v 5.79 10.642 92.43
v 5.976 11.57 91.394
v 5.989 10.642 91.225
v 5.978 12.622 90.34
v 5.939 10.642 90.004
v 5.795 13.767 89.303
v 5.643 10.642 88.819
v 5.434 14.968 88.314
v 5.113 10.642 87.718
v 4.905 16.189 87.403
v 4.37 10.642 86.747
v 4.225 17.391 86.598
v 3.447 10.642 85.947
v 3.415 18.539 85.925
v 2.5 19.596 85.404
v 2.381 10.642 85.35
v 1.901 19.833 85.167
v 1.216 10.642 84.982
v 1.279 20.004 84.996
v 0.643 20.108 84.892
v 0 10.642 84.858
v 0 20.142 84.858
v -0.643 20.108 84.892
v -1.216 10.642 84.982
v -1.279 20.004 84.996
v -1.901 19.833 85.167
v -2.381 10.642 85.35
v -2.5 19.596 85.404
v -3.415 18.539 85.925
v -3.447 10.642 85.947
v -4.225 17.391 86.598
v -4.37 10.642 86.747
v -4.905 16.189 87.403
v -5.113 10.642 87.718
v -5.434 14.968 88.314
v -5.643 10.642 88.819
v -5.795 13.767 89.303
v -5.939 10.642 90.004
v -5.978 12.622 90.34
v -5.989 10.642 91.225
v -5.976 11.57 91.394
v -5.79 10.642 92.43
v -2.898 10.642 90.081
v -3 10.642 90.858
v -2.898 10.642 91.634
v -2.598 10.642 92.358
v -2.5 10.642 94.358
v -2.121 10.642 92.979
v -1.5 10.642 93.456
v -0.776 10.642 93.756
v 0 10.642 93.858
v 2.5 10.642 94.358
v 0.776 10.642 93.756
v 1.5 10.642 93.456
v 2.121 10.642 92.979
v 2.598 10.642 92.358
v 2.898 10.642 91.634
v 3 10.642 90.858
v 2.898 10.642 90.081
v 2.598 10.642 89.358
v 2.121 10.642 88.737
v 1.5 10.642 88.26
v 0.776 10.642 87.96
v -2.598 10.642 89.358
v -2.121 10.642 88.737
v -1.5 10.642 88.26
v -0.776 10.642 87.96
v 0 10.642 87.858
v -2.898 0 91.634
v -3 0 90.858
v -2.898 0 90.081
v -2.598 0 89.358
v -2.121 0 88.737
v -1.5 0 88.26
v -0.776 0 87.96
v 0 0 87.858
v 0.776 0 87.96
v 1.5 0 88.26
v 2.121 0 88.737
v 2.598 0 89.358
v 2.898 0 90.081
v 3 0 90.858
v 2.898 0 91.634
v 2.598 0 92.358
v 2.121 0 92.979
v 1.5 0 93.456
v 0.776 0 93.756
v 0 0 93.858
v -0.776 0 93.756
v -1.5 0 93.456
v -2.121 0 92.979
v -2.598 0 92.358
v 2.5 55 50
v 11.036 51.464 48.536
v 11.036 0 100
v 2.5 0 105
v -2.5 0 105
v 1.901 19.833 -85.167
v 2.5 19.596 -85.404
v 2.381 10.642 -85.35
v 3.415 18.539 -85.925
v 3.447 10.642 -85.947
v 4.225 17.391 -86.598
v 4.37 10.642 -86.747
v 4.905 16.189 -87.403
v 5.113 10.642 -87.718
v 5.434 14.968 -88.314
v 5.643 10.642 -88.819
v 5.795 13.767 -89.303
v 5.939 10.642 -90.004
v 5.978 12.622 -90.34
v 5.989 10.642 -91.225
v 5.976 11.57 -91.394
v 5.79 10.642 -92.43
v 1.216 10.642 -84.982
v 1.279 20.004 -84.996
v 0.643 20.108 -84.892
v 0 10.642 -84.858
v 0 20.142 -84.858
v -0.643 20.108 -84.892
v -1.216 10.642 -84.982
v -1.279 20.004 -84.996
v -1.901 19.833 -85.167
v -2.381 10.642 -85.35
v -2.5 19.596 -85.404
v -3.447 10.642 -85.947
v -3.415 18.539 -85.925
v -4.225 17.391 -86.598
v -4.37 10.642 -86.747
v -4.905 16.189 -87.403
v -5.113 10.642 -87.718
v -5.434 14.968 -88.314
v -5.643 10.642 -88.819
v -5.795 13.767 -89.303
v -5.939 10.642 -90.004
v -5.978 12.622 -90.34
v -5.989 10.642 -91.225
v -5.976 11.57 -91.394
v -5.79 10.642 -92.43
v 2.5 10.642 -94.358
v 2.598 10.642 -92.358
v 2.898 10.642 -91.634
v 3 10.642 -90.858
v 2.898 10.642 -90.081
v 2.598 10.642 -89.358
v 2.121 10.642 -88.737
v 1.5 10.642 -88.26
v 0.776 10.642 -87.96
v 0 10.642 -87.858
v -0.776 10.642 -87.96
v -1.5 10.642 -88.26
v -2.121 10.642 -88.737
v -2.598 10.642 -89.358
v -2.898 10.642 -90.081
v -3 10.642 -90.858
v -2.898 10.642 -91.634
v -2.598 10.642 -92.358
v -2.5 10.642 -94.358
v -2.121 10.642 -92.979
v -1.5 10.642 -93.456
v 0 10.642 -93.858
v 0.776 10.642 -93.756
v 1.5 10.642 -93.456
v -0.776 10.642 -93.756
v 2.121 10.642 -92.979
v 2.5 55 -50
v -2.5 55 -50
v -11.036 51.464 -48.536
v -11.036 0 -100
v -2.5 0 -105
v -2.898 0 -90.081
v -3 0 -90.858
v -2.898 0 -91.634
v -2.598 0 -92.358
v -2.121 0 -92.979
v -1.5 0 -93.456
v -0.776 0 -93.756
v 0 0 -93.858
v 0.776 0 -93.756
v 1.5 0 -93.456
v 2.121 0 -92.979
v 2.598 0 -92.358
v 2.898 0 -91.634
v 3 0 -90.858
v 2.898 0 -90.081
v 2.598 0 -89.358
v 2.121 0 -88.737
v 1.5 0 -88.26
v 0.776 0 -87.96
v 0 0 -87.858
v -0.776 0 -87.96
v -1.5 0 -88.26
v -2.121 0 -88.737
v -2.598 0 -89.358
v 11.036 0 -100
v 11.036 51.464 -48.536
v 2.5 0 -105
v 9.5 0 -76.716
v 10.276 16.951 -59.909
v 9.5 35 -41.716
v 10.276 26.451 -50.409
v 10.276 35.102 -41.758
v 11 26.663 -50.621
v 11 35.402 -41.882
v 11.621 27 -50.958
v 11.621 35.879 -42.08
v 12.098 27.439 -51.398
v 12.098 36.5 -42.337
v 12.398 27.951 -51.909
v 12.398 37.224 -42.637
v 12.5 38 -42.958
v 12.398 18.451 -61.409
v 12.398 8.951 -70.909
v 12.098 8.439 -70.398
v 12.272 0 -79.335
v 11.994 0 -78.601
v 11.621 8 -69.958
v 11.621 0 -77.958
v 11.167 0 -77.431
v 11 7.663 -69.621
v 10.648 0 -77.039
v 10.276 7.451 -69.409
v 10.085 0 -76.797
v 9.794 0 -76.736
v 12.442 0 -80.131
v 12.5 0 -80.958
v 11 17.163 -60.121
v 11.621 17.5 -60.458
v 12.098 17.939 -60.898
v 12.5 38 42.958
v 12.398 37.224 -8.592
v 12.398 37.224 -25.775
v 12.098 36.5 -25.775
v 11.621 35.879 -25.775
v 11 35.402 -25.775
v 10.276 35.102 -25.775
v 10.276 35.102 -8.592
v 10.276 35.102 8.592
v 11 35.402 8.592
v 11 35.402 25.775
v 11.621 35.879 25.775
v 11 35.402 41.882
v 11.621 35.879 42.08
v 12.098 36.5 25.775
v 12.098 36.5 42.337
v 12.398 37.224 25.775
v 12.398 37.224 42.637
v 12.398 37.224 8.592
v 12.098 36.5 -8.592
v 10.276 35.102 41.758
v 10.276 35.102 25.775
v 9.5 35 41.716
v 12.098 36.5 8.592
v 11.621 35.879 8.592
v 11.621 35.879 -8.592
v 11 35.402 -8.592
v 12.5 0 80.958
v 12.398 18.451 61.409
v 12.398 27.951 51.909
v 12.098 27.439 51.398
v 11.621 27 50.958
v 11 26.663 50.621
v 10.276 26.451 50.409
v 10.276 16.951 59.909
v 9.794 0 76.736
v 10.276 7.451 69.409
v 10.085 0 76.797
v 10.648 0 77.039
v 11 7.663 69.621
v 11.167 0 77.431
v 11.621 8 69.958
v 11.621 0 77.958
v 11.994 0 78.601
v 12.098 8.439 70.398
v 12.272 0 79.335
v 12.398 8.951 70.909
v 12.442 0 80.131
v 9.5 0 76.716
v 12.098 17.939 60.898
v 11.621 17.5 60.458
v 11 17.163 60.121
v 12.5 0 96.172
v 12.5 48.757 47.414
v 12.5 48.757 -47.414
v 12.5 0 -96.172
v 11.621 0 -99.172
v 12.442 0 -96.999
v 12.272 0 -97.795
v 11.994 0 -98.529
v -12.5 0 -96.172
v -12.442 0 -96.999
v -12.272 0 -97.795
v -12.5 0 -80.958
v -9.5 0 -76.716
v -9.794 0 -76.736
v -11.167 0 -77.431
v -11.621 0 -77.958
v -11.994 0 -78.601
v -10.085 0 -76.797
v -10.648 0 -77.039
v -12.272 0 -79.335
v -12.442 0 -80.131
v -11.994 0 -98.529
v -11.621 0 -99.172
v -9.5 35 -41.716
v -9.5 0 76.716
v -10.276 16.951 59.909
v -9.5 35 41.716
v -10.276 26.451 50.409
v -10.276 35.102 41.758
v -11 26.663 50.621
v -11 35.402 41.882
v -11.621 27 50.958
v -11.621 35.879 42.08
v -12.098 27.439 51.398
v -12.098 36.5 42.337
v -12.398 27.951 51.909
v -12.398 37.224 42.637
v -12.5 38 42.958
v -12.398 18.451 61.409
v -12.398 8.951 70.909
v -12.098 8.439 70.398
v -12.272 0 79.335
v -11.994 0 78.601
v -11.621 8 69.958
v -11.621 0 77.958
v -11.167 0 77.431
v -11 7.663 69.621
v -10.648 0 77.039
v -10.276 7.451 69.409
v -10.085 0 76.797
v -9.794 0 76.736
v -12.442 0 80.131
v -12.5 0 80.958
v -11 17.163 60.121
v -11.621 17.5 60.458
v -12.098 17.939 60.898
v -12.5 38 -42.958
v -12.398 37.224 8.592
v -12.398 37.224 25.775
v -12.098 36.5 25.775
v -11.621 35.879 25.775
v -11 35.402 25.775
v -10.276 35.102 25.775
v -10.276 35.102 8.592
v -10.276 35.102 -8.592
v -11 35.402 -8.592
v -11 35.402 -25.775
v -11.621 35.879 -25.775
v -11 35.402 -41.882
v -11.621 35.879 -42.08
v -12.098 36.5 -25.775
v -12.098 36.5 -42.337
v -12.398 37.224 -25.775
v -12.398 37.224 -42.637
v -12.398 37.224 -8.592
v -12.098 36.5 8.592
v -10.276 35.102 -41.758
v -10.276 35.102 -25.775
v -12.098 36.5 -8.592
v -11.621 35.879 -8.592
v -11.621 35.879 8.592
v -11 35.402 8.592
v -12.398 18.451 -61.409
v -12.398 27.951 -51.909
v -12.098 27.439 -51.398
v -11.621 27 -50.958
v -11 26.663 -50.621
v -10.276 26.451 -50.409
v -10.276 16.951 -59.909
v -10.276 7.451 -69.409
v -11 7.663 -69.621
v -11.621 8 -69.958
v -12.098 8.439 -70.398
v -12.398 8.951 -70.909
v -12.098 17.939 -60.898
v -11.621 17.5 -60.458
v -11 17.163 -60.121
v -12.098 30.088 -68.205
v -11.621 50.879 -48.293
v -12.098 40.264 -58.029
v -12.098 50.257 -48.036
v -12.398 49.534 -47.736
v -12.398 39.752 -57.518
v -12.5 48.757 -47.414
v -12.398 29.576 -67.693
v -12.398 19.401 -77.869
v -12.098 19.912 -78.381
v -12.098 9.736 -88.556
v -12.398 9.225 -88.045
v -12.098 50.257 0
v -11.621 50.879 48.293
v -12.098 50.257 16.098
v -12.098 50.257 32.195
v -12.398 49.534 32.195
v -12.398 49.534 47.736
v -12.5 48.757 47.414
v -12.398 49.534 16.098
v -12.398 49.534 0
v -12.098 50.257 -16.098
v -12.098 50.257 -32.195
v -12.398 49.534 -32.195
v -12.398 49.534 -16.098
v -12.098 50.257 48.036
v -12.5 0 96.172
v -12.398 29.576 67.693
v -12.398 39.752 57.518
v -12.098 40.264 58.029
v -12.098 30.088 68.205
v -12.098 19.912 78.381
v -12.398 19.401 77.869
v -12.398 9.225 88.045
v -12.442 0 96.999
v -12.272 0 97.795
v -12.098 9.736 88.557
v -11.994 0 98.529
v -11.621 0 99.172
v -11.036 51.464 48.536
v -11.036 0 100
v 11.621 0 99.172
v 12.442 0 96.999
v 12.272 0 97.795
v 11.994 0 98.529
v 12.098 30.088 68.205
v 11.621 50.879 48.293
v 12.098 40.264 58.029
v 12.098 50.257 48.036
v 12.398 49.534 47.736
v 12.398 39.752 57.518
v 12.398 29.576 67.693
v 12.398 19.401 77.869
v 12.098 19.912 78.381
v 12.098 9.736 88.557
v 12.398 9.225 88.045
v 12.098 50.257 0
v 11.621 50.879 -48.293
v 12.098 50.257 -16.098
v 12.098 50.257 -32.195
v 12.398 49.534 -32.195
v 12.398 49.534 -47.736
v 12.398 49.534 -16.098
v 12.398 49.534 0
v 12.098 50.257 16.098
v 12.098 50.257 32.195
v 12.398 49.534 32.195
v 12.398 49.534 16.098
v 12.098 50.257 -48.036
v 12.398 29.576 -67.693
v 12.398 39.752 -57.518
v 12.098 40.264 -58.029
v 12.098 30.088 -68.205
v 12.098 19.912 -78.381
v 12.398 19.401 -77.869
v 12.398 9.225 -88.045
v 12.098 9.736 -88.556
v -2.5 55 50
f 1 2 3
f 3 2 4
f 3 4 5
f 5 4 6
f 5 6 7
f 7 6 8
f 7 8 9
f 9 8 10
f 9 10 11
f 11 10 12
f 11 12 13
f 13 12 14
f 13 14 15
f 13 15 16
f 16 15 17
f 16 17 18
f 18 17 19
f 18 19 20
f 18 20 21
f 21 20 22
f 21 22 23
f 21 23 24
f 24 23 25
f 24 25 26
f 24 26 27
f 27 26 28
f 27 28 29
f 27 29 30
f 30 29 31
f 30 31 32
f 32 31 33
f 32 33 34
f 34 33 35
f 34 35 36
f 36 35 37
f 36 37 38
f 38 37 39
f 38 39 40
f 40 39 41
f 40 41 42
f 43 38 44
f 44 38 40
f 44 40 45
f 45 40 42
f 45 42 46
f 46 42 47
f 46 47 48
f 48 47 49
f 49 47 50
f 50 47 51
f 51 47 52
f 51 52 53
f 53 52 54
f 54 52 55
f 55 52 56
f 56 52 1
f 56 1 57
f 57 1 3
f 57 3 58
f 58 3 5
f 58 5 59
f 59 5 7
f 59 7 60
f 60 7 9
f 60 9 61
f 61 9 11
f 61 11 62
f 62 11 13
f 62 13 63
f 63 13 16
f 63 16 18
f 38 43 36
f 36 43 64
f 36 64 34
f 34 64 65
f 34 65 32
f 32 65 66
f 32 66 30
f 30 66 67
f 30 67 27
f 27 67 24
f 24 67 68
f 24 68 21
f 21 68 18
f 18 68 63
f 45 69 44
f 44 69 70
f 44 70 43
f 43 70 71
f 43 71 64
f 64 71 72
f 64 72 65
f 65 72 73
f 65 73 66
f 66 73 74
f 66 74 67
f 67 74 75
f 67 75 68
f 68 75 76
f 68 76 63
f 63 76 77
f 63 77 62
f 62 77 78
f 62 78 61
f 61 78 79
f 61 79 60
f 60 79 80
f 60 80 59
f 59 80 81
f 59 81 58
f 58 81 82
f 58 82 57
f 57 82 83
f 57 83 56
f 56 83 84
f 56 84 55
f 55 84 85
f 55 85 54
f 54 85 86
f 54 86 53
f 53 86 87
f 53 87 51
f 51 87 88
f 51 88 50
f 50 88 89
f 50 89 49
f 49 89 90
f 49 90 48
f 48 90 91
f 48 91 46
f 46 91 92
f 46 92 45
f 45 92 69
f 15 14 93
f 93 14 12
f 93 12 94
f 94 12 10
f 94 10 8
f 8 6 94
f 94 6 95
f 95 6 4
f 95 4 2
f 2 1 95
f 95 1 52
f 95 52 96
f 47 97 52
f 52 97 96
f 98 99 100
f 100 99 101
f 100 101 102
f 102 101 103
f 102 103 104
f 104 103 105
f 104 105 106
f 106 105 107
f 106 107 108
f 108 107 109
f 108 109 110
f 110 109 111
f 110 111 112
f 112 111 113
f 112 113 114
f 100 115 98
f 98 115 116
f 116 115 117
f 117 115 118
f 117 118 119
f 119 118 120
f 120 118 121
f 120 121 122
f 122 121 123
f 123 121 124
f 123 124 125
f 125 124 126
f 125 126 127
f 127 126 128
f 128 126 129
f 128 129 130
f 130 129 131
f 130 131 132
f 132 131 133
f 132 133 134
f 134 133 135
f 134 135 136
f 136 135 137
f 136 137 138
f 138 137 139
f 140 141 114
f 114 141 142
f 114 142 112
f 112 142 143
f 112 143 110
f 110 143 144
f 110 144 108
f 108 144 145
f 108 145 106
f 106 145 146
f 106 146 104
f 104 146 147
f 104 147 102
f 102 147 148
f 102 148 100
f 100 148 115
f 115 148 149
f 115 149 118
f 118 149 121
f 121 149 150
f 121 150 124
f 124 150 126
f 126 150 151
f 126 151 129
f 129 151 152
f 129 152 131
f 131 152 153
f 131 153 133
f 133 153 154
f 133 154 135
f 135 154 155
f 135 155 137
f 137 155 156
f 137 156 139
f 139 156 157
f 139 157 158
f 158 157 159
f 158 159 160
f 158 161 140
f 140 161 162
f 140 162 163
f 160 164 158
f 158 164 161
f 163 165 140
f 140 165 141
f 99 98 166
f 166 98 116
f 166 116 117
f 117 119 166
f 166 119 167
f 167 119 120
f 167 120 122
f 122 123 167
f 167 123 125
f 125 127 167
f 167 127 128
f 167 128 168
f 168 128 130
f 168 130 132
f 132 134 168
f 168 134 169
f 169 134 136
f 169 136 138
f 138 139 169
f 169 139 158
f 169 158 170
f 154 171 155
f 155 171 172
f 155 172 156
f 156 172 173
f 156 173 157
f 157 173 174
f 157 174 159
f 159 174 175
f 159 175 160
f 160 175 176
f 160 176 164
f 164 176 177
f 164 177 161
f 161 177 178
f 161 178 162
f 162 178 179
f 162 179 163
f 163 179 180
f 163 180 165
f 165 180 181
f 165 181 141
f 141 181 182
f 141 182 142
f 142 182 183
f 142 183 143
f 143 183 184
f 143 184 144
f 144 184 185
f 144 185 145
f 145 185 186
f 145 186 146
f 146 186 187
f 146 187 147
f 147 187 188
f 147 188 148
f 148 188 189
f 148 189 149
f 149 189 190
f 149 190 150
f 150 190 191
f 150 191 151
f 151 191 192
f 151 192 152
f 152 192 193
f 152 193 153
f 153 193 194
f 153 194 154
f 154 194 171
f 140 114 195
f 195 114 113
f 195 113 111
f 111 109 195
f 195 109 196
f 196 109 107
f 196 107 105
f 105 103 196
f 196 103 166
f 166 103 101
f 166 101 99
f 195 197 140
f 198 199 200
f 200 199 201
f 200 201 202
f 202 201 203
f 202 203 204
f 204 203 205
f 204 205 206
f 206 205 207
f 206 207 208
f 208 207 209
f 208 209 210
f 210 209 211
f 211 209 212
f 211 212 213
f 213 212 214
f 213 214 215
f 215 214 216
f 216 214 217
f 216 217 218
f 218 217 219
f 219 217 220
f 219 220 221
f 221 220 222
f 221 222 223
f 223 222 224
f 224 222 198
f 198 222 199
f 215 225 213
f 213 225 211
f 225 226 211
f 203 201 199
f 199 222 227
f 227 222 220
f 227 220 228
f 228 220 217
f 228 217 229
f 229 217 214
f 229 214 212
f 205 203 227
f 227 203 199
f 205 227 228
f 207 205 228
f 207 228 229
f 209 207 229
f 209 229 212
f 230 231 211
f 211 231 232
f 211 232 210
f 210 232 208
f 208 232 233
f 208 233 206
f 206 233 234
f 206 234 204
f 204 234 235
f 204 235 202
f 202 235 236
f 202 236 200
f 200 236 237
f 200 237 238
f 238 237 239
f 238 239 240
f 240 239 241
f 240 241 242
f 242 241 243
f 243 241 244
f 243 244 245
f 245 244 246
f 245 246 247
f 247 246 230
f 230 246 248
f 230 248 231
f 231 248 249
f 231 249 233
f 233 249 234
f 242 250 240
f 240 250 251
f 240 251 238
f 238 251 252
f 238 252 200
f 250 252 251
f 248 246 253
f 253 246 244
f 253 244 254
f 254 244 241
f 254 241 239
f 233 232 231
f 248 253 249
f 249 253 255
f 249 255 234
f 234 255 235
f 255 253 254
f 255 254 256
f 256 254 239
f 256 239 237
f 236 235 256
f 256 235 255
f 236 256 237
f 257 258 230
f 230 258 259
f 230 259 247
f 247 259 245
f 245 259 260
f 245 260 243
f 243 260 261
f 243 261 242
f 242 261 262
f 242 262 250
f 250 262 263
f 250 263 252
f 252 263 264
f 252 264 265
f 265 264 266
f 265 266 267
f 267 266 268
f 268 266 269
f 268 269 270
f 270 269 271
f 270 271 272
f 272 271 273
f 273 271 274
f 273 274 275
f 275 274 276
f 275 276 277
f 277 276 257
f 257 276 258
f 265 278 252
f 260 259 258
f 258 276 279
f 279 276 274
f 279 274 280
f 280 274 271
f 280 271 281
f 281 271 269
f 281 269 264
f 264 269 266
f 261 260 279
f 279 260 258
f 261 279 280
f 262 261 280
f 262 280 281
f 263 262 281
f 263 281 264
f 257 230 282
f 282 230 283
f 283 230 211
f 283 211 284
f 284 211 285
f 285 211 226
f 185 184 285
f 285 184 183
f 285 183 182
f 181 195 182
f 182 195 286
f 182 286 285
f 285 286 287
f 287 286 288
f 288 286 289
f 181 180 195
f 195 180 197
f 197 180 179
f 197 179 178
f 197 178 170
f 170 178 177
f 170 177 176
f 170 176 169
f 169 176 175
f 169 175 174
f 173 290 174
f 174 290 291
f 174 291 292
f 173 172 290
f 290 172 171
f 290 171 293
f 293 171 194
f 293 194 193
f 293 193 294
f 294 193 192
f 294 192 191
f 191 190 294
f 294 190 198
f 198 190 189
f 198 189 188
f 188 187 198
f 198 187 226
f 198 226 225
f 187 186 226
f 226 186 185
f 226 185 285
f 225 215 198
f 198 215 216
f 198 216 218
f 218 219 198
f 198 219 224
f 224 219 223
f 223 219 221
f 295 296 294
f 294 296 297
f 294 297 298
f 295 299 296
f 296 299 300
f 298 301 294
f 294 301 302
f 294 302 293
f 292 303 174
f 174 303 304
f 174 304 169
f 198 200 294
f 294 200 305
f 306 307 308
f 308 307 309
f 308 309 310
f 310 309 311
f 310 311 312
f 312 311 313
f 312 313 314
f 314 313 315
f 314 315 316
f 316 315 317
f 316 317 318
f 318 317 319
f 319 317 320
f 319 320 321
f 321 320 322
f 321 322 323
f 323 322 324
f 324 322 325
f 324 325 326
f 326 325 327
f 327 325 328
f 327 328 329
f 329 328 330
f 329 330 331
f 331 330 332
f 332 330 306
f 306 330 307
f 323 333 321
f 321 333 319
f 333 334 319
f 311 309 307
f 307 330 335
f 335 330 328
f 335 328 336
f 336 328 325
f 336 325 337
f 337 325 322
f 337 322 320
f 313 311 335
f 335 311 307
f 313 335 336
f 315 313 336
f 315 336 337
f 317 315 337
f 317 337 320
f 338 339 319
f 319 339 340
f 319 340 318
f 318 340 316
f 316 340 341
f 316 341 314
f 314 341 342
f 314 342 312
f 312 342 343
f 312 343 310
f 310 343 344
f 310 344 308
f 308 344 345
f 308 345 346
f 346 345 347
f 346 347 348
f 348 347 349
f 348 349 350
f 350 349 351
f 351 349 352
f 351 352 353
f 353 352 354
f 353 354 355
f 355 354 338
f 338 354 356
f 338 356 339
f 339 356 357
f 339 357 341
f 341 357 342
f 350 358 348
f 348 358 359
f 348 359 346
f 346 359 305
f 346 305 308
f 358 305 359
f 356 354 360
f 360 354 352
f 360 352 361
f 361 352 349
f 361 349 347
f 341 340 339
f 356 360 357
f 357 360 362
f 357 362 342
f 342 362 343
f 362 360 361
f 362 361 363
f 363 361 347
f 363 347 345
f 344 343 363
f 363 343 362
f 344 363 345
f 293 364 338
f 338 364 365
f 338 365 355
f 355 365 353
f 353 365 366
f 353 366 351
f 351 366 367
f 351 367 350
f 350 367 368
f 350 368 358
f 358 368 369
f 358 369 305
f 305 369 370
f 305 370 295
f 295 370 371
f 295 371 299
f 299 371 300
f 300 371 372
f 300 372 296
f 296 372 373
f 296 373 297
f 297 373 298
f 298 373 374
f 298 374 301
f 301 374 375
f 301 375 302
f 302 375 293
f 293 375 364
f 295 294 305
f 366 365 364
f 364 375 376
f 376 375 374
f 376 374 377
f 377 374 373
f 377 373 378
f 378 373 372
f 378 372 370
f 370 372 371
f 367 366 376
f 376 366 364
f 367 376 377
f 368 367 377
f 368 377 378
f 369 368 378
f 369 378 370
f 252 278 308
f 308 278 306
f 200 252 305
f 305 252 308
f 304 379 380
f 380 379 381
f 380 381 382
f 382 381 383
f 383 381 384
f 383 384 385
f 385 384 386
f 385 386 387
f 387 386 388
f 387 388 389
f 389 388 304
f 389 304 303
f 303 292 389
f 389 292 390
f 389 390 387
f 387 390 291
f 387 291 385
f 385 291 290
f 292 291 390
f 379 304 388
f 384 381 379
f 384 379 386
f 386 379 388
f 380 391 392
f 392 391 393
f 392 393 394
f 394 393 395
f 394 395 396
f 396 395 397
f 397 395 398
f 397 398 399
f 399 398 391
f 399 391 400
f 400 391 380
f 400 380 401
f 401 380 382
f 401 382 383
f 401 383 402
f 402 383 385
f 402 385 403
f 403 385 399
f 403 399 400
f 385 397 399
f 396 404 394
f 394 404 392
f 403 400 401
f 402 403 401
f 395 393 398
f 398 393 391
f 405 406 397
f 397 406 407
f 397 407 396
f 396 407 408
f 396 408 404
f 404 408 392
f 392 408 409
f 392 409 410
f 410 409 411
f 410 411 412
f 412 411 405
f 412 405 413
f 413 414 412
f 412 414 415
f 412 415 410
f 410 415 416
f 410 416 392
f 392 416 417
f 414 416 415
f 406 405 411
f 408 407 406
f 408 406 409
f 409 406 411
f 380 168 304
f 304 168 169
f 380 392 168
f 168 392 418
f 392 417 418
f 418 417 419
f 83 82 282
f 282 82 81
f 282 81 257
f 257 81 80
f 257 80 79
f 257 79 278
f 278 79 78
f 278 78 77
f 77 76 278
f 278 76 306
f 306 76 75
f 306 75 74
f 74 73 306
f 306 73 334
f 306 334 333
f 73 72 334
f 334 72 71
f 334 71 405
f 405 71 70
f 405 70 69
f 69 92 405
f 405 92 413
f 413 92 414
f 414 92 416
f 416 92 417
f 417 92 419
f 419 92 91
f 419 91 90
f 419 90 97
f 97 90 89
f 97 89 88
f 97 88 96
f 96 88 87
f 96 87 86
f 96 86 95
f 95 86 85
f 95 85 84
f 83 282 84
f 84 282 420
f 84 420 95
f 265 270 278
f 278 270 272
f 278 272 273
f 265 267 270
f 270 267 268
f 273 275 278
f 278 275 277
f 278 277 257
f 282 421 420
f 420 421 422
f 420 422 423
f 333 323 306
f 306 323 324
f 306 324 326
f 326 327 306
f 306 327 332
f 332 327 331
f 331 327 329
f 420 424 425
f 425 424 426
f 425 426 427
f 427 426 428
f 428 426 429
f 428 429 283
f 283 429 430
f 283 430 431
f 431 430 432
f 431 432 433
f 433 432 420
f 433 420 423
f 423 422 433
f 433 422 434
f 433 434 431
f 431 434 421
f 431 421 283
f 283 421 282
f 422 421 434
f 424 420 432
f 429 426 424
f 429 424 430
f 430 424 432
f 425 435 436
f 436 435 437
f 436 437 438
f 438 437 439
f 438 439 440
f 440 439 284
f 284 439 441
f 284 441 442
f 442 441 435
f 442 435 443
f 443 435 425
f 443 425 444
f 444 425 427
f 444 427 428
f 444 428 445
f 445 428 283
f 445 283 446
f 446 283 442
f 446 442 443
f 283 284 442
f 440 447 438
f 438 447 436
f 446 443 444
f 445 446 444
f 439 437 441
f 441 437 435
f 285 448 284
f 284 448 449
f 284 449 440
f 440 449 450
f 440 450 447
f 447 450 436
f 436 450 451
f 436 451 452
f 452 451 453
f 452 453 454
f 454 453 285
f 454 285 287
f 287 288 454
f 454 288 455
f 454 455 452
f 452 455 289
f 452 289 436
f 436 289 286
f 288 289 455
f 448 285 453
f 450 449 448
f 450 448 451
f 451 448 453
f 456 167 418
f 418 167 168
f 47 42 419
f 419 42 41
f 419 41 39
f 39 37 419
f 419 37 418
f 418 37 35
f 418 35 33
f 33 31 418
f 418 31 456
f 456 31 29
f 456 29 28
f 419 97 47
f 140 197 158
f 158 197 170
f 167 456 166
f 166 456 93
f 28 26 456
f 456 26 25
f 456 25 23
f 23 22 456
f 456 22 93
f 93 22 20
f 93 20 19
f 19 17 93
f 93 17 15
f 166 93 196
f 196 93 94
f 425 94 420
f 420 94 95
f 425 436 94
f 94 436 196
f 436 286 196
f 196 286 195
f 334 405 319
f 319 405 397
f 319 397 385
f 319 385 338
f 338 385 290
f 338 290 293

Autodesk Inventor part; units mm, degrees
ref_plane "YZ Plane" through (0, 0, 0) normal (1, 0, 0) x (0, 1, 0)
ref_plane "XY Plane" through (0, 0, 0) normal (0, 0, 1) x (1, 0, 0)
sketch "Sketch1" plane through (0, 0, 0) normal (1, 0, 0) x (0, 1, 0)
  line L0 (0, 105) -> (55, 50)
  line L1 (55, 50) -> (55, -50)
  line L2 (55, -50) -> (0, -105)
  line L3 (0, 105) -> (0, -115) construction
  line L4 (0, -76.7157) -> (35, -41.7157)
  line L5 (35, -41.7157) -> (35, 41.7157)
  line L6 (35, 41.7157) -> (0, 76.7157)
  line L7 (0, -115) -> (0, -76.7157)
  line L8 (0, 76.7157) -> (0, 105)
  point P0 (0, 0)
  point P1 (55, 0)
  point P2 (0, -5)
  point P3 (35, 0)
  point P4 (0, -105)
  dimension "d0" = 210
  dimension "d2" = 45
  dimension "d3" = 20
  dimension "d4" = 35
  dimension "d5" = 20
extrude "Extrusion1" add sketch "Sketch1" along normal mid plane 25
chamfer "Chamfer1" distance 5 angle 45 6 edges at (-12.5, 27.5, -77.5) (-12.5, 55, 0) (-12.5, 27.5, 77.5) (12.5, 27.5, 77.5) (12.5, 55, 0) (12.5, 27.5, -77.5)
chamfer "Chamfer2" distance 5 angle 45 6 edges at (7.5, 27.5, 77.5) (-7.5, 27.5, 77.5) (-7.5, 55, 0) (7.5, 55, 0) (7.5, 27.5, -77.5) (-7.5, 27.5, -77.5)
fillet "Fillet1" radius 3 6 edges at (12.5, 25, 72.9289) (12.5, 50, 0) (12.5, 25, -72.9289) (-12.5, 25, -72.9289) (-12.5, 50, 0) (-12.5, 25, 72.9289)
fillet "Fillet2" radius 3 6 edges at (-12.5, 17.5, -59.2157) (-12.5, 35, 0) (-12.5, 17.5, 59.2157) (12.5, 17.5, 59.2157) (12.5, 35, 0) (12.5, 17.5, -59.2157)
sketch "Sketch2" plane through (-2.5, 0, 105) normal (0, -1, 0) x (1, 0, 0)
  line L0 (-7, -181.7157) -> (12, -181.7157) projected
  line L1 (0, -210) -> (5, -210) projected
  point P0 (2.5, -105)
  point P1 (2.5, -195.8579)
  point P2 (2.5, -181.7157)
  point P3 (2.5, -181.7157)
  point P4 (2.5, -210)
  dimension "d20" = 14.1421
  dimension "d22" = 28.2843
hole "Hole1" at (0, 0, -90.8579) direction (0, 1, 0) diameter 6 end through all
ref_plane "Work Plane3" through (0, 17.1421, -87.8579) normal (0, 1, 0) x (-1, 0, 0)
sketch "Sketch6" plane through (0, 17.1421, -87.8579) normal (0, 1, 0) x (-1, 0, 0)
  arc A0 (-2.5, -4.6583) -> (2.5, -4.6583) centre (0, -3) ccw projected
  circle A1 centre (0, -3) radius 6
  point P0 (0, 87.8579)
  dimension "d37" = 12
extrude "Extrusion4" cut sketch "Sketch6" along normal blind 3 and the other way blind 6.5
mirror "Mirror2" about plane through (0, 0, 0) normal (0, 0, 1) of "Extrusion4", "Hole1"
equation "\"d20\" = 0.5 * d22"
properties part number "Handle"
